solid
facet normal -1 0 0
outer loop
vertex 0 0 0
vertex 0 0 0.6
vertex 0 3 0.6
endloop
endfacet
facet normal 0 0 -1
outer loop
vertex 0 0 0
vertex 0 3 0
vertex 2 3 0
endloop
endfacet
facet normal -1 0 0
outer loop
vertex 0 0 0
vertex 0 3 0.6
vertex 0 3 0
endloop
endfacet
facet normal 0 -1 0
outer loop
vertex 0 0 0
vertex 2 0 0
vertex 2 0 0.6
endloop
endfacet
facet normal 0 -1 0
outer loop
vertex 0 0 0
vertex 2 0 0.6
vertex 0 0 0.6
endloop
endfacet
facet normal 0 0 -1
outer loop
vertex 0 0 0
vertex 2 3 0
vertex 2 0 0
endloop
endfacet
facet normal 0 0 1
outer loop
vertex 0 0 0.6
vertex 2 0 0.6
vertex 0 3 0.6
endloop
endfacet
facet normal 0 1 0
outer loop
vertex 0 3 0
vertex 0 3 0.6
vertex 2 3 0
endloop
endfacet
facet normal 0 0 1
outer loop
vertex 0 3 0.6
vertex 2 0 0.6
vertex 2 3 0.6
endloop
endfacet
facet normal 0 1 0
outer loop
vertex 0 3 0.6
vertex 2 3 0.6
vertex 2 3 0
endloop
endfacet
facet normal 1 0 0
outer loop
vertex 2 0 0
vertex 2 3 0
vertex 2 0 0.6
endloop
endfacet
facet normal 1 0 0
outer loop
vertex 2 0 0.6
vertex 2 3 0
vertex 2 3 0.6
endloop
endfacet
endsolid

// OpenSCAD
/* Warning, this is a very basic generator with a lot of approximation 
input data : [UDFN, Q3B, 2x3x0.6mm, 8, , A, C04-21354A]
generated by com.zoubworld.electronics.cad.model3d.Basic
Date : Sun Feb 15 10:50:49 CET 2026
*/

//body
color("black")
translate([0,0,0])
cube([2.0,3.0,0.6], center=false);
